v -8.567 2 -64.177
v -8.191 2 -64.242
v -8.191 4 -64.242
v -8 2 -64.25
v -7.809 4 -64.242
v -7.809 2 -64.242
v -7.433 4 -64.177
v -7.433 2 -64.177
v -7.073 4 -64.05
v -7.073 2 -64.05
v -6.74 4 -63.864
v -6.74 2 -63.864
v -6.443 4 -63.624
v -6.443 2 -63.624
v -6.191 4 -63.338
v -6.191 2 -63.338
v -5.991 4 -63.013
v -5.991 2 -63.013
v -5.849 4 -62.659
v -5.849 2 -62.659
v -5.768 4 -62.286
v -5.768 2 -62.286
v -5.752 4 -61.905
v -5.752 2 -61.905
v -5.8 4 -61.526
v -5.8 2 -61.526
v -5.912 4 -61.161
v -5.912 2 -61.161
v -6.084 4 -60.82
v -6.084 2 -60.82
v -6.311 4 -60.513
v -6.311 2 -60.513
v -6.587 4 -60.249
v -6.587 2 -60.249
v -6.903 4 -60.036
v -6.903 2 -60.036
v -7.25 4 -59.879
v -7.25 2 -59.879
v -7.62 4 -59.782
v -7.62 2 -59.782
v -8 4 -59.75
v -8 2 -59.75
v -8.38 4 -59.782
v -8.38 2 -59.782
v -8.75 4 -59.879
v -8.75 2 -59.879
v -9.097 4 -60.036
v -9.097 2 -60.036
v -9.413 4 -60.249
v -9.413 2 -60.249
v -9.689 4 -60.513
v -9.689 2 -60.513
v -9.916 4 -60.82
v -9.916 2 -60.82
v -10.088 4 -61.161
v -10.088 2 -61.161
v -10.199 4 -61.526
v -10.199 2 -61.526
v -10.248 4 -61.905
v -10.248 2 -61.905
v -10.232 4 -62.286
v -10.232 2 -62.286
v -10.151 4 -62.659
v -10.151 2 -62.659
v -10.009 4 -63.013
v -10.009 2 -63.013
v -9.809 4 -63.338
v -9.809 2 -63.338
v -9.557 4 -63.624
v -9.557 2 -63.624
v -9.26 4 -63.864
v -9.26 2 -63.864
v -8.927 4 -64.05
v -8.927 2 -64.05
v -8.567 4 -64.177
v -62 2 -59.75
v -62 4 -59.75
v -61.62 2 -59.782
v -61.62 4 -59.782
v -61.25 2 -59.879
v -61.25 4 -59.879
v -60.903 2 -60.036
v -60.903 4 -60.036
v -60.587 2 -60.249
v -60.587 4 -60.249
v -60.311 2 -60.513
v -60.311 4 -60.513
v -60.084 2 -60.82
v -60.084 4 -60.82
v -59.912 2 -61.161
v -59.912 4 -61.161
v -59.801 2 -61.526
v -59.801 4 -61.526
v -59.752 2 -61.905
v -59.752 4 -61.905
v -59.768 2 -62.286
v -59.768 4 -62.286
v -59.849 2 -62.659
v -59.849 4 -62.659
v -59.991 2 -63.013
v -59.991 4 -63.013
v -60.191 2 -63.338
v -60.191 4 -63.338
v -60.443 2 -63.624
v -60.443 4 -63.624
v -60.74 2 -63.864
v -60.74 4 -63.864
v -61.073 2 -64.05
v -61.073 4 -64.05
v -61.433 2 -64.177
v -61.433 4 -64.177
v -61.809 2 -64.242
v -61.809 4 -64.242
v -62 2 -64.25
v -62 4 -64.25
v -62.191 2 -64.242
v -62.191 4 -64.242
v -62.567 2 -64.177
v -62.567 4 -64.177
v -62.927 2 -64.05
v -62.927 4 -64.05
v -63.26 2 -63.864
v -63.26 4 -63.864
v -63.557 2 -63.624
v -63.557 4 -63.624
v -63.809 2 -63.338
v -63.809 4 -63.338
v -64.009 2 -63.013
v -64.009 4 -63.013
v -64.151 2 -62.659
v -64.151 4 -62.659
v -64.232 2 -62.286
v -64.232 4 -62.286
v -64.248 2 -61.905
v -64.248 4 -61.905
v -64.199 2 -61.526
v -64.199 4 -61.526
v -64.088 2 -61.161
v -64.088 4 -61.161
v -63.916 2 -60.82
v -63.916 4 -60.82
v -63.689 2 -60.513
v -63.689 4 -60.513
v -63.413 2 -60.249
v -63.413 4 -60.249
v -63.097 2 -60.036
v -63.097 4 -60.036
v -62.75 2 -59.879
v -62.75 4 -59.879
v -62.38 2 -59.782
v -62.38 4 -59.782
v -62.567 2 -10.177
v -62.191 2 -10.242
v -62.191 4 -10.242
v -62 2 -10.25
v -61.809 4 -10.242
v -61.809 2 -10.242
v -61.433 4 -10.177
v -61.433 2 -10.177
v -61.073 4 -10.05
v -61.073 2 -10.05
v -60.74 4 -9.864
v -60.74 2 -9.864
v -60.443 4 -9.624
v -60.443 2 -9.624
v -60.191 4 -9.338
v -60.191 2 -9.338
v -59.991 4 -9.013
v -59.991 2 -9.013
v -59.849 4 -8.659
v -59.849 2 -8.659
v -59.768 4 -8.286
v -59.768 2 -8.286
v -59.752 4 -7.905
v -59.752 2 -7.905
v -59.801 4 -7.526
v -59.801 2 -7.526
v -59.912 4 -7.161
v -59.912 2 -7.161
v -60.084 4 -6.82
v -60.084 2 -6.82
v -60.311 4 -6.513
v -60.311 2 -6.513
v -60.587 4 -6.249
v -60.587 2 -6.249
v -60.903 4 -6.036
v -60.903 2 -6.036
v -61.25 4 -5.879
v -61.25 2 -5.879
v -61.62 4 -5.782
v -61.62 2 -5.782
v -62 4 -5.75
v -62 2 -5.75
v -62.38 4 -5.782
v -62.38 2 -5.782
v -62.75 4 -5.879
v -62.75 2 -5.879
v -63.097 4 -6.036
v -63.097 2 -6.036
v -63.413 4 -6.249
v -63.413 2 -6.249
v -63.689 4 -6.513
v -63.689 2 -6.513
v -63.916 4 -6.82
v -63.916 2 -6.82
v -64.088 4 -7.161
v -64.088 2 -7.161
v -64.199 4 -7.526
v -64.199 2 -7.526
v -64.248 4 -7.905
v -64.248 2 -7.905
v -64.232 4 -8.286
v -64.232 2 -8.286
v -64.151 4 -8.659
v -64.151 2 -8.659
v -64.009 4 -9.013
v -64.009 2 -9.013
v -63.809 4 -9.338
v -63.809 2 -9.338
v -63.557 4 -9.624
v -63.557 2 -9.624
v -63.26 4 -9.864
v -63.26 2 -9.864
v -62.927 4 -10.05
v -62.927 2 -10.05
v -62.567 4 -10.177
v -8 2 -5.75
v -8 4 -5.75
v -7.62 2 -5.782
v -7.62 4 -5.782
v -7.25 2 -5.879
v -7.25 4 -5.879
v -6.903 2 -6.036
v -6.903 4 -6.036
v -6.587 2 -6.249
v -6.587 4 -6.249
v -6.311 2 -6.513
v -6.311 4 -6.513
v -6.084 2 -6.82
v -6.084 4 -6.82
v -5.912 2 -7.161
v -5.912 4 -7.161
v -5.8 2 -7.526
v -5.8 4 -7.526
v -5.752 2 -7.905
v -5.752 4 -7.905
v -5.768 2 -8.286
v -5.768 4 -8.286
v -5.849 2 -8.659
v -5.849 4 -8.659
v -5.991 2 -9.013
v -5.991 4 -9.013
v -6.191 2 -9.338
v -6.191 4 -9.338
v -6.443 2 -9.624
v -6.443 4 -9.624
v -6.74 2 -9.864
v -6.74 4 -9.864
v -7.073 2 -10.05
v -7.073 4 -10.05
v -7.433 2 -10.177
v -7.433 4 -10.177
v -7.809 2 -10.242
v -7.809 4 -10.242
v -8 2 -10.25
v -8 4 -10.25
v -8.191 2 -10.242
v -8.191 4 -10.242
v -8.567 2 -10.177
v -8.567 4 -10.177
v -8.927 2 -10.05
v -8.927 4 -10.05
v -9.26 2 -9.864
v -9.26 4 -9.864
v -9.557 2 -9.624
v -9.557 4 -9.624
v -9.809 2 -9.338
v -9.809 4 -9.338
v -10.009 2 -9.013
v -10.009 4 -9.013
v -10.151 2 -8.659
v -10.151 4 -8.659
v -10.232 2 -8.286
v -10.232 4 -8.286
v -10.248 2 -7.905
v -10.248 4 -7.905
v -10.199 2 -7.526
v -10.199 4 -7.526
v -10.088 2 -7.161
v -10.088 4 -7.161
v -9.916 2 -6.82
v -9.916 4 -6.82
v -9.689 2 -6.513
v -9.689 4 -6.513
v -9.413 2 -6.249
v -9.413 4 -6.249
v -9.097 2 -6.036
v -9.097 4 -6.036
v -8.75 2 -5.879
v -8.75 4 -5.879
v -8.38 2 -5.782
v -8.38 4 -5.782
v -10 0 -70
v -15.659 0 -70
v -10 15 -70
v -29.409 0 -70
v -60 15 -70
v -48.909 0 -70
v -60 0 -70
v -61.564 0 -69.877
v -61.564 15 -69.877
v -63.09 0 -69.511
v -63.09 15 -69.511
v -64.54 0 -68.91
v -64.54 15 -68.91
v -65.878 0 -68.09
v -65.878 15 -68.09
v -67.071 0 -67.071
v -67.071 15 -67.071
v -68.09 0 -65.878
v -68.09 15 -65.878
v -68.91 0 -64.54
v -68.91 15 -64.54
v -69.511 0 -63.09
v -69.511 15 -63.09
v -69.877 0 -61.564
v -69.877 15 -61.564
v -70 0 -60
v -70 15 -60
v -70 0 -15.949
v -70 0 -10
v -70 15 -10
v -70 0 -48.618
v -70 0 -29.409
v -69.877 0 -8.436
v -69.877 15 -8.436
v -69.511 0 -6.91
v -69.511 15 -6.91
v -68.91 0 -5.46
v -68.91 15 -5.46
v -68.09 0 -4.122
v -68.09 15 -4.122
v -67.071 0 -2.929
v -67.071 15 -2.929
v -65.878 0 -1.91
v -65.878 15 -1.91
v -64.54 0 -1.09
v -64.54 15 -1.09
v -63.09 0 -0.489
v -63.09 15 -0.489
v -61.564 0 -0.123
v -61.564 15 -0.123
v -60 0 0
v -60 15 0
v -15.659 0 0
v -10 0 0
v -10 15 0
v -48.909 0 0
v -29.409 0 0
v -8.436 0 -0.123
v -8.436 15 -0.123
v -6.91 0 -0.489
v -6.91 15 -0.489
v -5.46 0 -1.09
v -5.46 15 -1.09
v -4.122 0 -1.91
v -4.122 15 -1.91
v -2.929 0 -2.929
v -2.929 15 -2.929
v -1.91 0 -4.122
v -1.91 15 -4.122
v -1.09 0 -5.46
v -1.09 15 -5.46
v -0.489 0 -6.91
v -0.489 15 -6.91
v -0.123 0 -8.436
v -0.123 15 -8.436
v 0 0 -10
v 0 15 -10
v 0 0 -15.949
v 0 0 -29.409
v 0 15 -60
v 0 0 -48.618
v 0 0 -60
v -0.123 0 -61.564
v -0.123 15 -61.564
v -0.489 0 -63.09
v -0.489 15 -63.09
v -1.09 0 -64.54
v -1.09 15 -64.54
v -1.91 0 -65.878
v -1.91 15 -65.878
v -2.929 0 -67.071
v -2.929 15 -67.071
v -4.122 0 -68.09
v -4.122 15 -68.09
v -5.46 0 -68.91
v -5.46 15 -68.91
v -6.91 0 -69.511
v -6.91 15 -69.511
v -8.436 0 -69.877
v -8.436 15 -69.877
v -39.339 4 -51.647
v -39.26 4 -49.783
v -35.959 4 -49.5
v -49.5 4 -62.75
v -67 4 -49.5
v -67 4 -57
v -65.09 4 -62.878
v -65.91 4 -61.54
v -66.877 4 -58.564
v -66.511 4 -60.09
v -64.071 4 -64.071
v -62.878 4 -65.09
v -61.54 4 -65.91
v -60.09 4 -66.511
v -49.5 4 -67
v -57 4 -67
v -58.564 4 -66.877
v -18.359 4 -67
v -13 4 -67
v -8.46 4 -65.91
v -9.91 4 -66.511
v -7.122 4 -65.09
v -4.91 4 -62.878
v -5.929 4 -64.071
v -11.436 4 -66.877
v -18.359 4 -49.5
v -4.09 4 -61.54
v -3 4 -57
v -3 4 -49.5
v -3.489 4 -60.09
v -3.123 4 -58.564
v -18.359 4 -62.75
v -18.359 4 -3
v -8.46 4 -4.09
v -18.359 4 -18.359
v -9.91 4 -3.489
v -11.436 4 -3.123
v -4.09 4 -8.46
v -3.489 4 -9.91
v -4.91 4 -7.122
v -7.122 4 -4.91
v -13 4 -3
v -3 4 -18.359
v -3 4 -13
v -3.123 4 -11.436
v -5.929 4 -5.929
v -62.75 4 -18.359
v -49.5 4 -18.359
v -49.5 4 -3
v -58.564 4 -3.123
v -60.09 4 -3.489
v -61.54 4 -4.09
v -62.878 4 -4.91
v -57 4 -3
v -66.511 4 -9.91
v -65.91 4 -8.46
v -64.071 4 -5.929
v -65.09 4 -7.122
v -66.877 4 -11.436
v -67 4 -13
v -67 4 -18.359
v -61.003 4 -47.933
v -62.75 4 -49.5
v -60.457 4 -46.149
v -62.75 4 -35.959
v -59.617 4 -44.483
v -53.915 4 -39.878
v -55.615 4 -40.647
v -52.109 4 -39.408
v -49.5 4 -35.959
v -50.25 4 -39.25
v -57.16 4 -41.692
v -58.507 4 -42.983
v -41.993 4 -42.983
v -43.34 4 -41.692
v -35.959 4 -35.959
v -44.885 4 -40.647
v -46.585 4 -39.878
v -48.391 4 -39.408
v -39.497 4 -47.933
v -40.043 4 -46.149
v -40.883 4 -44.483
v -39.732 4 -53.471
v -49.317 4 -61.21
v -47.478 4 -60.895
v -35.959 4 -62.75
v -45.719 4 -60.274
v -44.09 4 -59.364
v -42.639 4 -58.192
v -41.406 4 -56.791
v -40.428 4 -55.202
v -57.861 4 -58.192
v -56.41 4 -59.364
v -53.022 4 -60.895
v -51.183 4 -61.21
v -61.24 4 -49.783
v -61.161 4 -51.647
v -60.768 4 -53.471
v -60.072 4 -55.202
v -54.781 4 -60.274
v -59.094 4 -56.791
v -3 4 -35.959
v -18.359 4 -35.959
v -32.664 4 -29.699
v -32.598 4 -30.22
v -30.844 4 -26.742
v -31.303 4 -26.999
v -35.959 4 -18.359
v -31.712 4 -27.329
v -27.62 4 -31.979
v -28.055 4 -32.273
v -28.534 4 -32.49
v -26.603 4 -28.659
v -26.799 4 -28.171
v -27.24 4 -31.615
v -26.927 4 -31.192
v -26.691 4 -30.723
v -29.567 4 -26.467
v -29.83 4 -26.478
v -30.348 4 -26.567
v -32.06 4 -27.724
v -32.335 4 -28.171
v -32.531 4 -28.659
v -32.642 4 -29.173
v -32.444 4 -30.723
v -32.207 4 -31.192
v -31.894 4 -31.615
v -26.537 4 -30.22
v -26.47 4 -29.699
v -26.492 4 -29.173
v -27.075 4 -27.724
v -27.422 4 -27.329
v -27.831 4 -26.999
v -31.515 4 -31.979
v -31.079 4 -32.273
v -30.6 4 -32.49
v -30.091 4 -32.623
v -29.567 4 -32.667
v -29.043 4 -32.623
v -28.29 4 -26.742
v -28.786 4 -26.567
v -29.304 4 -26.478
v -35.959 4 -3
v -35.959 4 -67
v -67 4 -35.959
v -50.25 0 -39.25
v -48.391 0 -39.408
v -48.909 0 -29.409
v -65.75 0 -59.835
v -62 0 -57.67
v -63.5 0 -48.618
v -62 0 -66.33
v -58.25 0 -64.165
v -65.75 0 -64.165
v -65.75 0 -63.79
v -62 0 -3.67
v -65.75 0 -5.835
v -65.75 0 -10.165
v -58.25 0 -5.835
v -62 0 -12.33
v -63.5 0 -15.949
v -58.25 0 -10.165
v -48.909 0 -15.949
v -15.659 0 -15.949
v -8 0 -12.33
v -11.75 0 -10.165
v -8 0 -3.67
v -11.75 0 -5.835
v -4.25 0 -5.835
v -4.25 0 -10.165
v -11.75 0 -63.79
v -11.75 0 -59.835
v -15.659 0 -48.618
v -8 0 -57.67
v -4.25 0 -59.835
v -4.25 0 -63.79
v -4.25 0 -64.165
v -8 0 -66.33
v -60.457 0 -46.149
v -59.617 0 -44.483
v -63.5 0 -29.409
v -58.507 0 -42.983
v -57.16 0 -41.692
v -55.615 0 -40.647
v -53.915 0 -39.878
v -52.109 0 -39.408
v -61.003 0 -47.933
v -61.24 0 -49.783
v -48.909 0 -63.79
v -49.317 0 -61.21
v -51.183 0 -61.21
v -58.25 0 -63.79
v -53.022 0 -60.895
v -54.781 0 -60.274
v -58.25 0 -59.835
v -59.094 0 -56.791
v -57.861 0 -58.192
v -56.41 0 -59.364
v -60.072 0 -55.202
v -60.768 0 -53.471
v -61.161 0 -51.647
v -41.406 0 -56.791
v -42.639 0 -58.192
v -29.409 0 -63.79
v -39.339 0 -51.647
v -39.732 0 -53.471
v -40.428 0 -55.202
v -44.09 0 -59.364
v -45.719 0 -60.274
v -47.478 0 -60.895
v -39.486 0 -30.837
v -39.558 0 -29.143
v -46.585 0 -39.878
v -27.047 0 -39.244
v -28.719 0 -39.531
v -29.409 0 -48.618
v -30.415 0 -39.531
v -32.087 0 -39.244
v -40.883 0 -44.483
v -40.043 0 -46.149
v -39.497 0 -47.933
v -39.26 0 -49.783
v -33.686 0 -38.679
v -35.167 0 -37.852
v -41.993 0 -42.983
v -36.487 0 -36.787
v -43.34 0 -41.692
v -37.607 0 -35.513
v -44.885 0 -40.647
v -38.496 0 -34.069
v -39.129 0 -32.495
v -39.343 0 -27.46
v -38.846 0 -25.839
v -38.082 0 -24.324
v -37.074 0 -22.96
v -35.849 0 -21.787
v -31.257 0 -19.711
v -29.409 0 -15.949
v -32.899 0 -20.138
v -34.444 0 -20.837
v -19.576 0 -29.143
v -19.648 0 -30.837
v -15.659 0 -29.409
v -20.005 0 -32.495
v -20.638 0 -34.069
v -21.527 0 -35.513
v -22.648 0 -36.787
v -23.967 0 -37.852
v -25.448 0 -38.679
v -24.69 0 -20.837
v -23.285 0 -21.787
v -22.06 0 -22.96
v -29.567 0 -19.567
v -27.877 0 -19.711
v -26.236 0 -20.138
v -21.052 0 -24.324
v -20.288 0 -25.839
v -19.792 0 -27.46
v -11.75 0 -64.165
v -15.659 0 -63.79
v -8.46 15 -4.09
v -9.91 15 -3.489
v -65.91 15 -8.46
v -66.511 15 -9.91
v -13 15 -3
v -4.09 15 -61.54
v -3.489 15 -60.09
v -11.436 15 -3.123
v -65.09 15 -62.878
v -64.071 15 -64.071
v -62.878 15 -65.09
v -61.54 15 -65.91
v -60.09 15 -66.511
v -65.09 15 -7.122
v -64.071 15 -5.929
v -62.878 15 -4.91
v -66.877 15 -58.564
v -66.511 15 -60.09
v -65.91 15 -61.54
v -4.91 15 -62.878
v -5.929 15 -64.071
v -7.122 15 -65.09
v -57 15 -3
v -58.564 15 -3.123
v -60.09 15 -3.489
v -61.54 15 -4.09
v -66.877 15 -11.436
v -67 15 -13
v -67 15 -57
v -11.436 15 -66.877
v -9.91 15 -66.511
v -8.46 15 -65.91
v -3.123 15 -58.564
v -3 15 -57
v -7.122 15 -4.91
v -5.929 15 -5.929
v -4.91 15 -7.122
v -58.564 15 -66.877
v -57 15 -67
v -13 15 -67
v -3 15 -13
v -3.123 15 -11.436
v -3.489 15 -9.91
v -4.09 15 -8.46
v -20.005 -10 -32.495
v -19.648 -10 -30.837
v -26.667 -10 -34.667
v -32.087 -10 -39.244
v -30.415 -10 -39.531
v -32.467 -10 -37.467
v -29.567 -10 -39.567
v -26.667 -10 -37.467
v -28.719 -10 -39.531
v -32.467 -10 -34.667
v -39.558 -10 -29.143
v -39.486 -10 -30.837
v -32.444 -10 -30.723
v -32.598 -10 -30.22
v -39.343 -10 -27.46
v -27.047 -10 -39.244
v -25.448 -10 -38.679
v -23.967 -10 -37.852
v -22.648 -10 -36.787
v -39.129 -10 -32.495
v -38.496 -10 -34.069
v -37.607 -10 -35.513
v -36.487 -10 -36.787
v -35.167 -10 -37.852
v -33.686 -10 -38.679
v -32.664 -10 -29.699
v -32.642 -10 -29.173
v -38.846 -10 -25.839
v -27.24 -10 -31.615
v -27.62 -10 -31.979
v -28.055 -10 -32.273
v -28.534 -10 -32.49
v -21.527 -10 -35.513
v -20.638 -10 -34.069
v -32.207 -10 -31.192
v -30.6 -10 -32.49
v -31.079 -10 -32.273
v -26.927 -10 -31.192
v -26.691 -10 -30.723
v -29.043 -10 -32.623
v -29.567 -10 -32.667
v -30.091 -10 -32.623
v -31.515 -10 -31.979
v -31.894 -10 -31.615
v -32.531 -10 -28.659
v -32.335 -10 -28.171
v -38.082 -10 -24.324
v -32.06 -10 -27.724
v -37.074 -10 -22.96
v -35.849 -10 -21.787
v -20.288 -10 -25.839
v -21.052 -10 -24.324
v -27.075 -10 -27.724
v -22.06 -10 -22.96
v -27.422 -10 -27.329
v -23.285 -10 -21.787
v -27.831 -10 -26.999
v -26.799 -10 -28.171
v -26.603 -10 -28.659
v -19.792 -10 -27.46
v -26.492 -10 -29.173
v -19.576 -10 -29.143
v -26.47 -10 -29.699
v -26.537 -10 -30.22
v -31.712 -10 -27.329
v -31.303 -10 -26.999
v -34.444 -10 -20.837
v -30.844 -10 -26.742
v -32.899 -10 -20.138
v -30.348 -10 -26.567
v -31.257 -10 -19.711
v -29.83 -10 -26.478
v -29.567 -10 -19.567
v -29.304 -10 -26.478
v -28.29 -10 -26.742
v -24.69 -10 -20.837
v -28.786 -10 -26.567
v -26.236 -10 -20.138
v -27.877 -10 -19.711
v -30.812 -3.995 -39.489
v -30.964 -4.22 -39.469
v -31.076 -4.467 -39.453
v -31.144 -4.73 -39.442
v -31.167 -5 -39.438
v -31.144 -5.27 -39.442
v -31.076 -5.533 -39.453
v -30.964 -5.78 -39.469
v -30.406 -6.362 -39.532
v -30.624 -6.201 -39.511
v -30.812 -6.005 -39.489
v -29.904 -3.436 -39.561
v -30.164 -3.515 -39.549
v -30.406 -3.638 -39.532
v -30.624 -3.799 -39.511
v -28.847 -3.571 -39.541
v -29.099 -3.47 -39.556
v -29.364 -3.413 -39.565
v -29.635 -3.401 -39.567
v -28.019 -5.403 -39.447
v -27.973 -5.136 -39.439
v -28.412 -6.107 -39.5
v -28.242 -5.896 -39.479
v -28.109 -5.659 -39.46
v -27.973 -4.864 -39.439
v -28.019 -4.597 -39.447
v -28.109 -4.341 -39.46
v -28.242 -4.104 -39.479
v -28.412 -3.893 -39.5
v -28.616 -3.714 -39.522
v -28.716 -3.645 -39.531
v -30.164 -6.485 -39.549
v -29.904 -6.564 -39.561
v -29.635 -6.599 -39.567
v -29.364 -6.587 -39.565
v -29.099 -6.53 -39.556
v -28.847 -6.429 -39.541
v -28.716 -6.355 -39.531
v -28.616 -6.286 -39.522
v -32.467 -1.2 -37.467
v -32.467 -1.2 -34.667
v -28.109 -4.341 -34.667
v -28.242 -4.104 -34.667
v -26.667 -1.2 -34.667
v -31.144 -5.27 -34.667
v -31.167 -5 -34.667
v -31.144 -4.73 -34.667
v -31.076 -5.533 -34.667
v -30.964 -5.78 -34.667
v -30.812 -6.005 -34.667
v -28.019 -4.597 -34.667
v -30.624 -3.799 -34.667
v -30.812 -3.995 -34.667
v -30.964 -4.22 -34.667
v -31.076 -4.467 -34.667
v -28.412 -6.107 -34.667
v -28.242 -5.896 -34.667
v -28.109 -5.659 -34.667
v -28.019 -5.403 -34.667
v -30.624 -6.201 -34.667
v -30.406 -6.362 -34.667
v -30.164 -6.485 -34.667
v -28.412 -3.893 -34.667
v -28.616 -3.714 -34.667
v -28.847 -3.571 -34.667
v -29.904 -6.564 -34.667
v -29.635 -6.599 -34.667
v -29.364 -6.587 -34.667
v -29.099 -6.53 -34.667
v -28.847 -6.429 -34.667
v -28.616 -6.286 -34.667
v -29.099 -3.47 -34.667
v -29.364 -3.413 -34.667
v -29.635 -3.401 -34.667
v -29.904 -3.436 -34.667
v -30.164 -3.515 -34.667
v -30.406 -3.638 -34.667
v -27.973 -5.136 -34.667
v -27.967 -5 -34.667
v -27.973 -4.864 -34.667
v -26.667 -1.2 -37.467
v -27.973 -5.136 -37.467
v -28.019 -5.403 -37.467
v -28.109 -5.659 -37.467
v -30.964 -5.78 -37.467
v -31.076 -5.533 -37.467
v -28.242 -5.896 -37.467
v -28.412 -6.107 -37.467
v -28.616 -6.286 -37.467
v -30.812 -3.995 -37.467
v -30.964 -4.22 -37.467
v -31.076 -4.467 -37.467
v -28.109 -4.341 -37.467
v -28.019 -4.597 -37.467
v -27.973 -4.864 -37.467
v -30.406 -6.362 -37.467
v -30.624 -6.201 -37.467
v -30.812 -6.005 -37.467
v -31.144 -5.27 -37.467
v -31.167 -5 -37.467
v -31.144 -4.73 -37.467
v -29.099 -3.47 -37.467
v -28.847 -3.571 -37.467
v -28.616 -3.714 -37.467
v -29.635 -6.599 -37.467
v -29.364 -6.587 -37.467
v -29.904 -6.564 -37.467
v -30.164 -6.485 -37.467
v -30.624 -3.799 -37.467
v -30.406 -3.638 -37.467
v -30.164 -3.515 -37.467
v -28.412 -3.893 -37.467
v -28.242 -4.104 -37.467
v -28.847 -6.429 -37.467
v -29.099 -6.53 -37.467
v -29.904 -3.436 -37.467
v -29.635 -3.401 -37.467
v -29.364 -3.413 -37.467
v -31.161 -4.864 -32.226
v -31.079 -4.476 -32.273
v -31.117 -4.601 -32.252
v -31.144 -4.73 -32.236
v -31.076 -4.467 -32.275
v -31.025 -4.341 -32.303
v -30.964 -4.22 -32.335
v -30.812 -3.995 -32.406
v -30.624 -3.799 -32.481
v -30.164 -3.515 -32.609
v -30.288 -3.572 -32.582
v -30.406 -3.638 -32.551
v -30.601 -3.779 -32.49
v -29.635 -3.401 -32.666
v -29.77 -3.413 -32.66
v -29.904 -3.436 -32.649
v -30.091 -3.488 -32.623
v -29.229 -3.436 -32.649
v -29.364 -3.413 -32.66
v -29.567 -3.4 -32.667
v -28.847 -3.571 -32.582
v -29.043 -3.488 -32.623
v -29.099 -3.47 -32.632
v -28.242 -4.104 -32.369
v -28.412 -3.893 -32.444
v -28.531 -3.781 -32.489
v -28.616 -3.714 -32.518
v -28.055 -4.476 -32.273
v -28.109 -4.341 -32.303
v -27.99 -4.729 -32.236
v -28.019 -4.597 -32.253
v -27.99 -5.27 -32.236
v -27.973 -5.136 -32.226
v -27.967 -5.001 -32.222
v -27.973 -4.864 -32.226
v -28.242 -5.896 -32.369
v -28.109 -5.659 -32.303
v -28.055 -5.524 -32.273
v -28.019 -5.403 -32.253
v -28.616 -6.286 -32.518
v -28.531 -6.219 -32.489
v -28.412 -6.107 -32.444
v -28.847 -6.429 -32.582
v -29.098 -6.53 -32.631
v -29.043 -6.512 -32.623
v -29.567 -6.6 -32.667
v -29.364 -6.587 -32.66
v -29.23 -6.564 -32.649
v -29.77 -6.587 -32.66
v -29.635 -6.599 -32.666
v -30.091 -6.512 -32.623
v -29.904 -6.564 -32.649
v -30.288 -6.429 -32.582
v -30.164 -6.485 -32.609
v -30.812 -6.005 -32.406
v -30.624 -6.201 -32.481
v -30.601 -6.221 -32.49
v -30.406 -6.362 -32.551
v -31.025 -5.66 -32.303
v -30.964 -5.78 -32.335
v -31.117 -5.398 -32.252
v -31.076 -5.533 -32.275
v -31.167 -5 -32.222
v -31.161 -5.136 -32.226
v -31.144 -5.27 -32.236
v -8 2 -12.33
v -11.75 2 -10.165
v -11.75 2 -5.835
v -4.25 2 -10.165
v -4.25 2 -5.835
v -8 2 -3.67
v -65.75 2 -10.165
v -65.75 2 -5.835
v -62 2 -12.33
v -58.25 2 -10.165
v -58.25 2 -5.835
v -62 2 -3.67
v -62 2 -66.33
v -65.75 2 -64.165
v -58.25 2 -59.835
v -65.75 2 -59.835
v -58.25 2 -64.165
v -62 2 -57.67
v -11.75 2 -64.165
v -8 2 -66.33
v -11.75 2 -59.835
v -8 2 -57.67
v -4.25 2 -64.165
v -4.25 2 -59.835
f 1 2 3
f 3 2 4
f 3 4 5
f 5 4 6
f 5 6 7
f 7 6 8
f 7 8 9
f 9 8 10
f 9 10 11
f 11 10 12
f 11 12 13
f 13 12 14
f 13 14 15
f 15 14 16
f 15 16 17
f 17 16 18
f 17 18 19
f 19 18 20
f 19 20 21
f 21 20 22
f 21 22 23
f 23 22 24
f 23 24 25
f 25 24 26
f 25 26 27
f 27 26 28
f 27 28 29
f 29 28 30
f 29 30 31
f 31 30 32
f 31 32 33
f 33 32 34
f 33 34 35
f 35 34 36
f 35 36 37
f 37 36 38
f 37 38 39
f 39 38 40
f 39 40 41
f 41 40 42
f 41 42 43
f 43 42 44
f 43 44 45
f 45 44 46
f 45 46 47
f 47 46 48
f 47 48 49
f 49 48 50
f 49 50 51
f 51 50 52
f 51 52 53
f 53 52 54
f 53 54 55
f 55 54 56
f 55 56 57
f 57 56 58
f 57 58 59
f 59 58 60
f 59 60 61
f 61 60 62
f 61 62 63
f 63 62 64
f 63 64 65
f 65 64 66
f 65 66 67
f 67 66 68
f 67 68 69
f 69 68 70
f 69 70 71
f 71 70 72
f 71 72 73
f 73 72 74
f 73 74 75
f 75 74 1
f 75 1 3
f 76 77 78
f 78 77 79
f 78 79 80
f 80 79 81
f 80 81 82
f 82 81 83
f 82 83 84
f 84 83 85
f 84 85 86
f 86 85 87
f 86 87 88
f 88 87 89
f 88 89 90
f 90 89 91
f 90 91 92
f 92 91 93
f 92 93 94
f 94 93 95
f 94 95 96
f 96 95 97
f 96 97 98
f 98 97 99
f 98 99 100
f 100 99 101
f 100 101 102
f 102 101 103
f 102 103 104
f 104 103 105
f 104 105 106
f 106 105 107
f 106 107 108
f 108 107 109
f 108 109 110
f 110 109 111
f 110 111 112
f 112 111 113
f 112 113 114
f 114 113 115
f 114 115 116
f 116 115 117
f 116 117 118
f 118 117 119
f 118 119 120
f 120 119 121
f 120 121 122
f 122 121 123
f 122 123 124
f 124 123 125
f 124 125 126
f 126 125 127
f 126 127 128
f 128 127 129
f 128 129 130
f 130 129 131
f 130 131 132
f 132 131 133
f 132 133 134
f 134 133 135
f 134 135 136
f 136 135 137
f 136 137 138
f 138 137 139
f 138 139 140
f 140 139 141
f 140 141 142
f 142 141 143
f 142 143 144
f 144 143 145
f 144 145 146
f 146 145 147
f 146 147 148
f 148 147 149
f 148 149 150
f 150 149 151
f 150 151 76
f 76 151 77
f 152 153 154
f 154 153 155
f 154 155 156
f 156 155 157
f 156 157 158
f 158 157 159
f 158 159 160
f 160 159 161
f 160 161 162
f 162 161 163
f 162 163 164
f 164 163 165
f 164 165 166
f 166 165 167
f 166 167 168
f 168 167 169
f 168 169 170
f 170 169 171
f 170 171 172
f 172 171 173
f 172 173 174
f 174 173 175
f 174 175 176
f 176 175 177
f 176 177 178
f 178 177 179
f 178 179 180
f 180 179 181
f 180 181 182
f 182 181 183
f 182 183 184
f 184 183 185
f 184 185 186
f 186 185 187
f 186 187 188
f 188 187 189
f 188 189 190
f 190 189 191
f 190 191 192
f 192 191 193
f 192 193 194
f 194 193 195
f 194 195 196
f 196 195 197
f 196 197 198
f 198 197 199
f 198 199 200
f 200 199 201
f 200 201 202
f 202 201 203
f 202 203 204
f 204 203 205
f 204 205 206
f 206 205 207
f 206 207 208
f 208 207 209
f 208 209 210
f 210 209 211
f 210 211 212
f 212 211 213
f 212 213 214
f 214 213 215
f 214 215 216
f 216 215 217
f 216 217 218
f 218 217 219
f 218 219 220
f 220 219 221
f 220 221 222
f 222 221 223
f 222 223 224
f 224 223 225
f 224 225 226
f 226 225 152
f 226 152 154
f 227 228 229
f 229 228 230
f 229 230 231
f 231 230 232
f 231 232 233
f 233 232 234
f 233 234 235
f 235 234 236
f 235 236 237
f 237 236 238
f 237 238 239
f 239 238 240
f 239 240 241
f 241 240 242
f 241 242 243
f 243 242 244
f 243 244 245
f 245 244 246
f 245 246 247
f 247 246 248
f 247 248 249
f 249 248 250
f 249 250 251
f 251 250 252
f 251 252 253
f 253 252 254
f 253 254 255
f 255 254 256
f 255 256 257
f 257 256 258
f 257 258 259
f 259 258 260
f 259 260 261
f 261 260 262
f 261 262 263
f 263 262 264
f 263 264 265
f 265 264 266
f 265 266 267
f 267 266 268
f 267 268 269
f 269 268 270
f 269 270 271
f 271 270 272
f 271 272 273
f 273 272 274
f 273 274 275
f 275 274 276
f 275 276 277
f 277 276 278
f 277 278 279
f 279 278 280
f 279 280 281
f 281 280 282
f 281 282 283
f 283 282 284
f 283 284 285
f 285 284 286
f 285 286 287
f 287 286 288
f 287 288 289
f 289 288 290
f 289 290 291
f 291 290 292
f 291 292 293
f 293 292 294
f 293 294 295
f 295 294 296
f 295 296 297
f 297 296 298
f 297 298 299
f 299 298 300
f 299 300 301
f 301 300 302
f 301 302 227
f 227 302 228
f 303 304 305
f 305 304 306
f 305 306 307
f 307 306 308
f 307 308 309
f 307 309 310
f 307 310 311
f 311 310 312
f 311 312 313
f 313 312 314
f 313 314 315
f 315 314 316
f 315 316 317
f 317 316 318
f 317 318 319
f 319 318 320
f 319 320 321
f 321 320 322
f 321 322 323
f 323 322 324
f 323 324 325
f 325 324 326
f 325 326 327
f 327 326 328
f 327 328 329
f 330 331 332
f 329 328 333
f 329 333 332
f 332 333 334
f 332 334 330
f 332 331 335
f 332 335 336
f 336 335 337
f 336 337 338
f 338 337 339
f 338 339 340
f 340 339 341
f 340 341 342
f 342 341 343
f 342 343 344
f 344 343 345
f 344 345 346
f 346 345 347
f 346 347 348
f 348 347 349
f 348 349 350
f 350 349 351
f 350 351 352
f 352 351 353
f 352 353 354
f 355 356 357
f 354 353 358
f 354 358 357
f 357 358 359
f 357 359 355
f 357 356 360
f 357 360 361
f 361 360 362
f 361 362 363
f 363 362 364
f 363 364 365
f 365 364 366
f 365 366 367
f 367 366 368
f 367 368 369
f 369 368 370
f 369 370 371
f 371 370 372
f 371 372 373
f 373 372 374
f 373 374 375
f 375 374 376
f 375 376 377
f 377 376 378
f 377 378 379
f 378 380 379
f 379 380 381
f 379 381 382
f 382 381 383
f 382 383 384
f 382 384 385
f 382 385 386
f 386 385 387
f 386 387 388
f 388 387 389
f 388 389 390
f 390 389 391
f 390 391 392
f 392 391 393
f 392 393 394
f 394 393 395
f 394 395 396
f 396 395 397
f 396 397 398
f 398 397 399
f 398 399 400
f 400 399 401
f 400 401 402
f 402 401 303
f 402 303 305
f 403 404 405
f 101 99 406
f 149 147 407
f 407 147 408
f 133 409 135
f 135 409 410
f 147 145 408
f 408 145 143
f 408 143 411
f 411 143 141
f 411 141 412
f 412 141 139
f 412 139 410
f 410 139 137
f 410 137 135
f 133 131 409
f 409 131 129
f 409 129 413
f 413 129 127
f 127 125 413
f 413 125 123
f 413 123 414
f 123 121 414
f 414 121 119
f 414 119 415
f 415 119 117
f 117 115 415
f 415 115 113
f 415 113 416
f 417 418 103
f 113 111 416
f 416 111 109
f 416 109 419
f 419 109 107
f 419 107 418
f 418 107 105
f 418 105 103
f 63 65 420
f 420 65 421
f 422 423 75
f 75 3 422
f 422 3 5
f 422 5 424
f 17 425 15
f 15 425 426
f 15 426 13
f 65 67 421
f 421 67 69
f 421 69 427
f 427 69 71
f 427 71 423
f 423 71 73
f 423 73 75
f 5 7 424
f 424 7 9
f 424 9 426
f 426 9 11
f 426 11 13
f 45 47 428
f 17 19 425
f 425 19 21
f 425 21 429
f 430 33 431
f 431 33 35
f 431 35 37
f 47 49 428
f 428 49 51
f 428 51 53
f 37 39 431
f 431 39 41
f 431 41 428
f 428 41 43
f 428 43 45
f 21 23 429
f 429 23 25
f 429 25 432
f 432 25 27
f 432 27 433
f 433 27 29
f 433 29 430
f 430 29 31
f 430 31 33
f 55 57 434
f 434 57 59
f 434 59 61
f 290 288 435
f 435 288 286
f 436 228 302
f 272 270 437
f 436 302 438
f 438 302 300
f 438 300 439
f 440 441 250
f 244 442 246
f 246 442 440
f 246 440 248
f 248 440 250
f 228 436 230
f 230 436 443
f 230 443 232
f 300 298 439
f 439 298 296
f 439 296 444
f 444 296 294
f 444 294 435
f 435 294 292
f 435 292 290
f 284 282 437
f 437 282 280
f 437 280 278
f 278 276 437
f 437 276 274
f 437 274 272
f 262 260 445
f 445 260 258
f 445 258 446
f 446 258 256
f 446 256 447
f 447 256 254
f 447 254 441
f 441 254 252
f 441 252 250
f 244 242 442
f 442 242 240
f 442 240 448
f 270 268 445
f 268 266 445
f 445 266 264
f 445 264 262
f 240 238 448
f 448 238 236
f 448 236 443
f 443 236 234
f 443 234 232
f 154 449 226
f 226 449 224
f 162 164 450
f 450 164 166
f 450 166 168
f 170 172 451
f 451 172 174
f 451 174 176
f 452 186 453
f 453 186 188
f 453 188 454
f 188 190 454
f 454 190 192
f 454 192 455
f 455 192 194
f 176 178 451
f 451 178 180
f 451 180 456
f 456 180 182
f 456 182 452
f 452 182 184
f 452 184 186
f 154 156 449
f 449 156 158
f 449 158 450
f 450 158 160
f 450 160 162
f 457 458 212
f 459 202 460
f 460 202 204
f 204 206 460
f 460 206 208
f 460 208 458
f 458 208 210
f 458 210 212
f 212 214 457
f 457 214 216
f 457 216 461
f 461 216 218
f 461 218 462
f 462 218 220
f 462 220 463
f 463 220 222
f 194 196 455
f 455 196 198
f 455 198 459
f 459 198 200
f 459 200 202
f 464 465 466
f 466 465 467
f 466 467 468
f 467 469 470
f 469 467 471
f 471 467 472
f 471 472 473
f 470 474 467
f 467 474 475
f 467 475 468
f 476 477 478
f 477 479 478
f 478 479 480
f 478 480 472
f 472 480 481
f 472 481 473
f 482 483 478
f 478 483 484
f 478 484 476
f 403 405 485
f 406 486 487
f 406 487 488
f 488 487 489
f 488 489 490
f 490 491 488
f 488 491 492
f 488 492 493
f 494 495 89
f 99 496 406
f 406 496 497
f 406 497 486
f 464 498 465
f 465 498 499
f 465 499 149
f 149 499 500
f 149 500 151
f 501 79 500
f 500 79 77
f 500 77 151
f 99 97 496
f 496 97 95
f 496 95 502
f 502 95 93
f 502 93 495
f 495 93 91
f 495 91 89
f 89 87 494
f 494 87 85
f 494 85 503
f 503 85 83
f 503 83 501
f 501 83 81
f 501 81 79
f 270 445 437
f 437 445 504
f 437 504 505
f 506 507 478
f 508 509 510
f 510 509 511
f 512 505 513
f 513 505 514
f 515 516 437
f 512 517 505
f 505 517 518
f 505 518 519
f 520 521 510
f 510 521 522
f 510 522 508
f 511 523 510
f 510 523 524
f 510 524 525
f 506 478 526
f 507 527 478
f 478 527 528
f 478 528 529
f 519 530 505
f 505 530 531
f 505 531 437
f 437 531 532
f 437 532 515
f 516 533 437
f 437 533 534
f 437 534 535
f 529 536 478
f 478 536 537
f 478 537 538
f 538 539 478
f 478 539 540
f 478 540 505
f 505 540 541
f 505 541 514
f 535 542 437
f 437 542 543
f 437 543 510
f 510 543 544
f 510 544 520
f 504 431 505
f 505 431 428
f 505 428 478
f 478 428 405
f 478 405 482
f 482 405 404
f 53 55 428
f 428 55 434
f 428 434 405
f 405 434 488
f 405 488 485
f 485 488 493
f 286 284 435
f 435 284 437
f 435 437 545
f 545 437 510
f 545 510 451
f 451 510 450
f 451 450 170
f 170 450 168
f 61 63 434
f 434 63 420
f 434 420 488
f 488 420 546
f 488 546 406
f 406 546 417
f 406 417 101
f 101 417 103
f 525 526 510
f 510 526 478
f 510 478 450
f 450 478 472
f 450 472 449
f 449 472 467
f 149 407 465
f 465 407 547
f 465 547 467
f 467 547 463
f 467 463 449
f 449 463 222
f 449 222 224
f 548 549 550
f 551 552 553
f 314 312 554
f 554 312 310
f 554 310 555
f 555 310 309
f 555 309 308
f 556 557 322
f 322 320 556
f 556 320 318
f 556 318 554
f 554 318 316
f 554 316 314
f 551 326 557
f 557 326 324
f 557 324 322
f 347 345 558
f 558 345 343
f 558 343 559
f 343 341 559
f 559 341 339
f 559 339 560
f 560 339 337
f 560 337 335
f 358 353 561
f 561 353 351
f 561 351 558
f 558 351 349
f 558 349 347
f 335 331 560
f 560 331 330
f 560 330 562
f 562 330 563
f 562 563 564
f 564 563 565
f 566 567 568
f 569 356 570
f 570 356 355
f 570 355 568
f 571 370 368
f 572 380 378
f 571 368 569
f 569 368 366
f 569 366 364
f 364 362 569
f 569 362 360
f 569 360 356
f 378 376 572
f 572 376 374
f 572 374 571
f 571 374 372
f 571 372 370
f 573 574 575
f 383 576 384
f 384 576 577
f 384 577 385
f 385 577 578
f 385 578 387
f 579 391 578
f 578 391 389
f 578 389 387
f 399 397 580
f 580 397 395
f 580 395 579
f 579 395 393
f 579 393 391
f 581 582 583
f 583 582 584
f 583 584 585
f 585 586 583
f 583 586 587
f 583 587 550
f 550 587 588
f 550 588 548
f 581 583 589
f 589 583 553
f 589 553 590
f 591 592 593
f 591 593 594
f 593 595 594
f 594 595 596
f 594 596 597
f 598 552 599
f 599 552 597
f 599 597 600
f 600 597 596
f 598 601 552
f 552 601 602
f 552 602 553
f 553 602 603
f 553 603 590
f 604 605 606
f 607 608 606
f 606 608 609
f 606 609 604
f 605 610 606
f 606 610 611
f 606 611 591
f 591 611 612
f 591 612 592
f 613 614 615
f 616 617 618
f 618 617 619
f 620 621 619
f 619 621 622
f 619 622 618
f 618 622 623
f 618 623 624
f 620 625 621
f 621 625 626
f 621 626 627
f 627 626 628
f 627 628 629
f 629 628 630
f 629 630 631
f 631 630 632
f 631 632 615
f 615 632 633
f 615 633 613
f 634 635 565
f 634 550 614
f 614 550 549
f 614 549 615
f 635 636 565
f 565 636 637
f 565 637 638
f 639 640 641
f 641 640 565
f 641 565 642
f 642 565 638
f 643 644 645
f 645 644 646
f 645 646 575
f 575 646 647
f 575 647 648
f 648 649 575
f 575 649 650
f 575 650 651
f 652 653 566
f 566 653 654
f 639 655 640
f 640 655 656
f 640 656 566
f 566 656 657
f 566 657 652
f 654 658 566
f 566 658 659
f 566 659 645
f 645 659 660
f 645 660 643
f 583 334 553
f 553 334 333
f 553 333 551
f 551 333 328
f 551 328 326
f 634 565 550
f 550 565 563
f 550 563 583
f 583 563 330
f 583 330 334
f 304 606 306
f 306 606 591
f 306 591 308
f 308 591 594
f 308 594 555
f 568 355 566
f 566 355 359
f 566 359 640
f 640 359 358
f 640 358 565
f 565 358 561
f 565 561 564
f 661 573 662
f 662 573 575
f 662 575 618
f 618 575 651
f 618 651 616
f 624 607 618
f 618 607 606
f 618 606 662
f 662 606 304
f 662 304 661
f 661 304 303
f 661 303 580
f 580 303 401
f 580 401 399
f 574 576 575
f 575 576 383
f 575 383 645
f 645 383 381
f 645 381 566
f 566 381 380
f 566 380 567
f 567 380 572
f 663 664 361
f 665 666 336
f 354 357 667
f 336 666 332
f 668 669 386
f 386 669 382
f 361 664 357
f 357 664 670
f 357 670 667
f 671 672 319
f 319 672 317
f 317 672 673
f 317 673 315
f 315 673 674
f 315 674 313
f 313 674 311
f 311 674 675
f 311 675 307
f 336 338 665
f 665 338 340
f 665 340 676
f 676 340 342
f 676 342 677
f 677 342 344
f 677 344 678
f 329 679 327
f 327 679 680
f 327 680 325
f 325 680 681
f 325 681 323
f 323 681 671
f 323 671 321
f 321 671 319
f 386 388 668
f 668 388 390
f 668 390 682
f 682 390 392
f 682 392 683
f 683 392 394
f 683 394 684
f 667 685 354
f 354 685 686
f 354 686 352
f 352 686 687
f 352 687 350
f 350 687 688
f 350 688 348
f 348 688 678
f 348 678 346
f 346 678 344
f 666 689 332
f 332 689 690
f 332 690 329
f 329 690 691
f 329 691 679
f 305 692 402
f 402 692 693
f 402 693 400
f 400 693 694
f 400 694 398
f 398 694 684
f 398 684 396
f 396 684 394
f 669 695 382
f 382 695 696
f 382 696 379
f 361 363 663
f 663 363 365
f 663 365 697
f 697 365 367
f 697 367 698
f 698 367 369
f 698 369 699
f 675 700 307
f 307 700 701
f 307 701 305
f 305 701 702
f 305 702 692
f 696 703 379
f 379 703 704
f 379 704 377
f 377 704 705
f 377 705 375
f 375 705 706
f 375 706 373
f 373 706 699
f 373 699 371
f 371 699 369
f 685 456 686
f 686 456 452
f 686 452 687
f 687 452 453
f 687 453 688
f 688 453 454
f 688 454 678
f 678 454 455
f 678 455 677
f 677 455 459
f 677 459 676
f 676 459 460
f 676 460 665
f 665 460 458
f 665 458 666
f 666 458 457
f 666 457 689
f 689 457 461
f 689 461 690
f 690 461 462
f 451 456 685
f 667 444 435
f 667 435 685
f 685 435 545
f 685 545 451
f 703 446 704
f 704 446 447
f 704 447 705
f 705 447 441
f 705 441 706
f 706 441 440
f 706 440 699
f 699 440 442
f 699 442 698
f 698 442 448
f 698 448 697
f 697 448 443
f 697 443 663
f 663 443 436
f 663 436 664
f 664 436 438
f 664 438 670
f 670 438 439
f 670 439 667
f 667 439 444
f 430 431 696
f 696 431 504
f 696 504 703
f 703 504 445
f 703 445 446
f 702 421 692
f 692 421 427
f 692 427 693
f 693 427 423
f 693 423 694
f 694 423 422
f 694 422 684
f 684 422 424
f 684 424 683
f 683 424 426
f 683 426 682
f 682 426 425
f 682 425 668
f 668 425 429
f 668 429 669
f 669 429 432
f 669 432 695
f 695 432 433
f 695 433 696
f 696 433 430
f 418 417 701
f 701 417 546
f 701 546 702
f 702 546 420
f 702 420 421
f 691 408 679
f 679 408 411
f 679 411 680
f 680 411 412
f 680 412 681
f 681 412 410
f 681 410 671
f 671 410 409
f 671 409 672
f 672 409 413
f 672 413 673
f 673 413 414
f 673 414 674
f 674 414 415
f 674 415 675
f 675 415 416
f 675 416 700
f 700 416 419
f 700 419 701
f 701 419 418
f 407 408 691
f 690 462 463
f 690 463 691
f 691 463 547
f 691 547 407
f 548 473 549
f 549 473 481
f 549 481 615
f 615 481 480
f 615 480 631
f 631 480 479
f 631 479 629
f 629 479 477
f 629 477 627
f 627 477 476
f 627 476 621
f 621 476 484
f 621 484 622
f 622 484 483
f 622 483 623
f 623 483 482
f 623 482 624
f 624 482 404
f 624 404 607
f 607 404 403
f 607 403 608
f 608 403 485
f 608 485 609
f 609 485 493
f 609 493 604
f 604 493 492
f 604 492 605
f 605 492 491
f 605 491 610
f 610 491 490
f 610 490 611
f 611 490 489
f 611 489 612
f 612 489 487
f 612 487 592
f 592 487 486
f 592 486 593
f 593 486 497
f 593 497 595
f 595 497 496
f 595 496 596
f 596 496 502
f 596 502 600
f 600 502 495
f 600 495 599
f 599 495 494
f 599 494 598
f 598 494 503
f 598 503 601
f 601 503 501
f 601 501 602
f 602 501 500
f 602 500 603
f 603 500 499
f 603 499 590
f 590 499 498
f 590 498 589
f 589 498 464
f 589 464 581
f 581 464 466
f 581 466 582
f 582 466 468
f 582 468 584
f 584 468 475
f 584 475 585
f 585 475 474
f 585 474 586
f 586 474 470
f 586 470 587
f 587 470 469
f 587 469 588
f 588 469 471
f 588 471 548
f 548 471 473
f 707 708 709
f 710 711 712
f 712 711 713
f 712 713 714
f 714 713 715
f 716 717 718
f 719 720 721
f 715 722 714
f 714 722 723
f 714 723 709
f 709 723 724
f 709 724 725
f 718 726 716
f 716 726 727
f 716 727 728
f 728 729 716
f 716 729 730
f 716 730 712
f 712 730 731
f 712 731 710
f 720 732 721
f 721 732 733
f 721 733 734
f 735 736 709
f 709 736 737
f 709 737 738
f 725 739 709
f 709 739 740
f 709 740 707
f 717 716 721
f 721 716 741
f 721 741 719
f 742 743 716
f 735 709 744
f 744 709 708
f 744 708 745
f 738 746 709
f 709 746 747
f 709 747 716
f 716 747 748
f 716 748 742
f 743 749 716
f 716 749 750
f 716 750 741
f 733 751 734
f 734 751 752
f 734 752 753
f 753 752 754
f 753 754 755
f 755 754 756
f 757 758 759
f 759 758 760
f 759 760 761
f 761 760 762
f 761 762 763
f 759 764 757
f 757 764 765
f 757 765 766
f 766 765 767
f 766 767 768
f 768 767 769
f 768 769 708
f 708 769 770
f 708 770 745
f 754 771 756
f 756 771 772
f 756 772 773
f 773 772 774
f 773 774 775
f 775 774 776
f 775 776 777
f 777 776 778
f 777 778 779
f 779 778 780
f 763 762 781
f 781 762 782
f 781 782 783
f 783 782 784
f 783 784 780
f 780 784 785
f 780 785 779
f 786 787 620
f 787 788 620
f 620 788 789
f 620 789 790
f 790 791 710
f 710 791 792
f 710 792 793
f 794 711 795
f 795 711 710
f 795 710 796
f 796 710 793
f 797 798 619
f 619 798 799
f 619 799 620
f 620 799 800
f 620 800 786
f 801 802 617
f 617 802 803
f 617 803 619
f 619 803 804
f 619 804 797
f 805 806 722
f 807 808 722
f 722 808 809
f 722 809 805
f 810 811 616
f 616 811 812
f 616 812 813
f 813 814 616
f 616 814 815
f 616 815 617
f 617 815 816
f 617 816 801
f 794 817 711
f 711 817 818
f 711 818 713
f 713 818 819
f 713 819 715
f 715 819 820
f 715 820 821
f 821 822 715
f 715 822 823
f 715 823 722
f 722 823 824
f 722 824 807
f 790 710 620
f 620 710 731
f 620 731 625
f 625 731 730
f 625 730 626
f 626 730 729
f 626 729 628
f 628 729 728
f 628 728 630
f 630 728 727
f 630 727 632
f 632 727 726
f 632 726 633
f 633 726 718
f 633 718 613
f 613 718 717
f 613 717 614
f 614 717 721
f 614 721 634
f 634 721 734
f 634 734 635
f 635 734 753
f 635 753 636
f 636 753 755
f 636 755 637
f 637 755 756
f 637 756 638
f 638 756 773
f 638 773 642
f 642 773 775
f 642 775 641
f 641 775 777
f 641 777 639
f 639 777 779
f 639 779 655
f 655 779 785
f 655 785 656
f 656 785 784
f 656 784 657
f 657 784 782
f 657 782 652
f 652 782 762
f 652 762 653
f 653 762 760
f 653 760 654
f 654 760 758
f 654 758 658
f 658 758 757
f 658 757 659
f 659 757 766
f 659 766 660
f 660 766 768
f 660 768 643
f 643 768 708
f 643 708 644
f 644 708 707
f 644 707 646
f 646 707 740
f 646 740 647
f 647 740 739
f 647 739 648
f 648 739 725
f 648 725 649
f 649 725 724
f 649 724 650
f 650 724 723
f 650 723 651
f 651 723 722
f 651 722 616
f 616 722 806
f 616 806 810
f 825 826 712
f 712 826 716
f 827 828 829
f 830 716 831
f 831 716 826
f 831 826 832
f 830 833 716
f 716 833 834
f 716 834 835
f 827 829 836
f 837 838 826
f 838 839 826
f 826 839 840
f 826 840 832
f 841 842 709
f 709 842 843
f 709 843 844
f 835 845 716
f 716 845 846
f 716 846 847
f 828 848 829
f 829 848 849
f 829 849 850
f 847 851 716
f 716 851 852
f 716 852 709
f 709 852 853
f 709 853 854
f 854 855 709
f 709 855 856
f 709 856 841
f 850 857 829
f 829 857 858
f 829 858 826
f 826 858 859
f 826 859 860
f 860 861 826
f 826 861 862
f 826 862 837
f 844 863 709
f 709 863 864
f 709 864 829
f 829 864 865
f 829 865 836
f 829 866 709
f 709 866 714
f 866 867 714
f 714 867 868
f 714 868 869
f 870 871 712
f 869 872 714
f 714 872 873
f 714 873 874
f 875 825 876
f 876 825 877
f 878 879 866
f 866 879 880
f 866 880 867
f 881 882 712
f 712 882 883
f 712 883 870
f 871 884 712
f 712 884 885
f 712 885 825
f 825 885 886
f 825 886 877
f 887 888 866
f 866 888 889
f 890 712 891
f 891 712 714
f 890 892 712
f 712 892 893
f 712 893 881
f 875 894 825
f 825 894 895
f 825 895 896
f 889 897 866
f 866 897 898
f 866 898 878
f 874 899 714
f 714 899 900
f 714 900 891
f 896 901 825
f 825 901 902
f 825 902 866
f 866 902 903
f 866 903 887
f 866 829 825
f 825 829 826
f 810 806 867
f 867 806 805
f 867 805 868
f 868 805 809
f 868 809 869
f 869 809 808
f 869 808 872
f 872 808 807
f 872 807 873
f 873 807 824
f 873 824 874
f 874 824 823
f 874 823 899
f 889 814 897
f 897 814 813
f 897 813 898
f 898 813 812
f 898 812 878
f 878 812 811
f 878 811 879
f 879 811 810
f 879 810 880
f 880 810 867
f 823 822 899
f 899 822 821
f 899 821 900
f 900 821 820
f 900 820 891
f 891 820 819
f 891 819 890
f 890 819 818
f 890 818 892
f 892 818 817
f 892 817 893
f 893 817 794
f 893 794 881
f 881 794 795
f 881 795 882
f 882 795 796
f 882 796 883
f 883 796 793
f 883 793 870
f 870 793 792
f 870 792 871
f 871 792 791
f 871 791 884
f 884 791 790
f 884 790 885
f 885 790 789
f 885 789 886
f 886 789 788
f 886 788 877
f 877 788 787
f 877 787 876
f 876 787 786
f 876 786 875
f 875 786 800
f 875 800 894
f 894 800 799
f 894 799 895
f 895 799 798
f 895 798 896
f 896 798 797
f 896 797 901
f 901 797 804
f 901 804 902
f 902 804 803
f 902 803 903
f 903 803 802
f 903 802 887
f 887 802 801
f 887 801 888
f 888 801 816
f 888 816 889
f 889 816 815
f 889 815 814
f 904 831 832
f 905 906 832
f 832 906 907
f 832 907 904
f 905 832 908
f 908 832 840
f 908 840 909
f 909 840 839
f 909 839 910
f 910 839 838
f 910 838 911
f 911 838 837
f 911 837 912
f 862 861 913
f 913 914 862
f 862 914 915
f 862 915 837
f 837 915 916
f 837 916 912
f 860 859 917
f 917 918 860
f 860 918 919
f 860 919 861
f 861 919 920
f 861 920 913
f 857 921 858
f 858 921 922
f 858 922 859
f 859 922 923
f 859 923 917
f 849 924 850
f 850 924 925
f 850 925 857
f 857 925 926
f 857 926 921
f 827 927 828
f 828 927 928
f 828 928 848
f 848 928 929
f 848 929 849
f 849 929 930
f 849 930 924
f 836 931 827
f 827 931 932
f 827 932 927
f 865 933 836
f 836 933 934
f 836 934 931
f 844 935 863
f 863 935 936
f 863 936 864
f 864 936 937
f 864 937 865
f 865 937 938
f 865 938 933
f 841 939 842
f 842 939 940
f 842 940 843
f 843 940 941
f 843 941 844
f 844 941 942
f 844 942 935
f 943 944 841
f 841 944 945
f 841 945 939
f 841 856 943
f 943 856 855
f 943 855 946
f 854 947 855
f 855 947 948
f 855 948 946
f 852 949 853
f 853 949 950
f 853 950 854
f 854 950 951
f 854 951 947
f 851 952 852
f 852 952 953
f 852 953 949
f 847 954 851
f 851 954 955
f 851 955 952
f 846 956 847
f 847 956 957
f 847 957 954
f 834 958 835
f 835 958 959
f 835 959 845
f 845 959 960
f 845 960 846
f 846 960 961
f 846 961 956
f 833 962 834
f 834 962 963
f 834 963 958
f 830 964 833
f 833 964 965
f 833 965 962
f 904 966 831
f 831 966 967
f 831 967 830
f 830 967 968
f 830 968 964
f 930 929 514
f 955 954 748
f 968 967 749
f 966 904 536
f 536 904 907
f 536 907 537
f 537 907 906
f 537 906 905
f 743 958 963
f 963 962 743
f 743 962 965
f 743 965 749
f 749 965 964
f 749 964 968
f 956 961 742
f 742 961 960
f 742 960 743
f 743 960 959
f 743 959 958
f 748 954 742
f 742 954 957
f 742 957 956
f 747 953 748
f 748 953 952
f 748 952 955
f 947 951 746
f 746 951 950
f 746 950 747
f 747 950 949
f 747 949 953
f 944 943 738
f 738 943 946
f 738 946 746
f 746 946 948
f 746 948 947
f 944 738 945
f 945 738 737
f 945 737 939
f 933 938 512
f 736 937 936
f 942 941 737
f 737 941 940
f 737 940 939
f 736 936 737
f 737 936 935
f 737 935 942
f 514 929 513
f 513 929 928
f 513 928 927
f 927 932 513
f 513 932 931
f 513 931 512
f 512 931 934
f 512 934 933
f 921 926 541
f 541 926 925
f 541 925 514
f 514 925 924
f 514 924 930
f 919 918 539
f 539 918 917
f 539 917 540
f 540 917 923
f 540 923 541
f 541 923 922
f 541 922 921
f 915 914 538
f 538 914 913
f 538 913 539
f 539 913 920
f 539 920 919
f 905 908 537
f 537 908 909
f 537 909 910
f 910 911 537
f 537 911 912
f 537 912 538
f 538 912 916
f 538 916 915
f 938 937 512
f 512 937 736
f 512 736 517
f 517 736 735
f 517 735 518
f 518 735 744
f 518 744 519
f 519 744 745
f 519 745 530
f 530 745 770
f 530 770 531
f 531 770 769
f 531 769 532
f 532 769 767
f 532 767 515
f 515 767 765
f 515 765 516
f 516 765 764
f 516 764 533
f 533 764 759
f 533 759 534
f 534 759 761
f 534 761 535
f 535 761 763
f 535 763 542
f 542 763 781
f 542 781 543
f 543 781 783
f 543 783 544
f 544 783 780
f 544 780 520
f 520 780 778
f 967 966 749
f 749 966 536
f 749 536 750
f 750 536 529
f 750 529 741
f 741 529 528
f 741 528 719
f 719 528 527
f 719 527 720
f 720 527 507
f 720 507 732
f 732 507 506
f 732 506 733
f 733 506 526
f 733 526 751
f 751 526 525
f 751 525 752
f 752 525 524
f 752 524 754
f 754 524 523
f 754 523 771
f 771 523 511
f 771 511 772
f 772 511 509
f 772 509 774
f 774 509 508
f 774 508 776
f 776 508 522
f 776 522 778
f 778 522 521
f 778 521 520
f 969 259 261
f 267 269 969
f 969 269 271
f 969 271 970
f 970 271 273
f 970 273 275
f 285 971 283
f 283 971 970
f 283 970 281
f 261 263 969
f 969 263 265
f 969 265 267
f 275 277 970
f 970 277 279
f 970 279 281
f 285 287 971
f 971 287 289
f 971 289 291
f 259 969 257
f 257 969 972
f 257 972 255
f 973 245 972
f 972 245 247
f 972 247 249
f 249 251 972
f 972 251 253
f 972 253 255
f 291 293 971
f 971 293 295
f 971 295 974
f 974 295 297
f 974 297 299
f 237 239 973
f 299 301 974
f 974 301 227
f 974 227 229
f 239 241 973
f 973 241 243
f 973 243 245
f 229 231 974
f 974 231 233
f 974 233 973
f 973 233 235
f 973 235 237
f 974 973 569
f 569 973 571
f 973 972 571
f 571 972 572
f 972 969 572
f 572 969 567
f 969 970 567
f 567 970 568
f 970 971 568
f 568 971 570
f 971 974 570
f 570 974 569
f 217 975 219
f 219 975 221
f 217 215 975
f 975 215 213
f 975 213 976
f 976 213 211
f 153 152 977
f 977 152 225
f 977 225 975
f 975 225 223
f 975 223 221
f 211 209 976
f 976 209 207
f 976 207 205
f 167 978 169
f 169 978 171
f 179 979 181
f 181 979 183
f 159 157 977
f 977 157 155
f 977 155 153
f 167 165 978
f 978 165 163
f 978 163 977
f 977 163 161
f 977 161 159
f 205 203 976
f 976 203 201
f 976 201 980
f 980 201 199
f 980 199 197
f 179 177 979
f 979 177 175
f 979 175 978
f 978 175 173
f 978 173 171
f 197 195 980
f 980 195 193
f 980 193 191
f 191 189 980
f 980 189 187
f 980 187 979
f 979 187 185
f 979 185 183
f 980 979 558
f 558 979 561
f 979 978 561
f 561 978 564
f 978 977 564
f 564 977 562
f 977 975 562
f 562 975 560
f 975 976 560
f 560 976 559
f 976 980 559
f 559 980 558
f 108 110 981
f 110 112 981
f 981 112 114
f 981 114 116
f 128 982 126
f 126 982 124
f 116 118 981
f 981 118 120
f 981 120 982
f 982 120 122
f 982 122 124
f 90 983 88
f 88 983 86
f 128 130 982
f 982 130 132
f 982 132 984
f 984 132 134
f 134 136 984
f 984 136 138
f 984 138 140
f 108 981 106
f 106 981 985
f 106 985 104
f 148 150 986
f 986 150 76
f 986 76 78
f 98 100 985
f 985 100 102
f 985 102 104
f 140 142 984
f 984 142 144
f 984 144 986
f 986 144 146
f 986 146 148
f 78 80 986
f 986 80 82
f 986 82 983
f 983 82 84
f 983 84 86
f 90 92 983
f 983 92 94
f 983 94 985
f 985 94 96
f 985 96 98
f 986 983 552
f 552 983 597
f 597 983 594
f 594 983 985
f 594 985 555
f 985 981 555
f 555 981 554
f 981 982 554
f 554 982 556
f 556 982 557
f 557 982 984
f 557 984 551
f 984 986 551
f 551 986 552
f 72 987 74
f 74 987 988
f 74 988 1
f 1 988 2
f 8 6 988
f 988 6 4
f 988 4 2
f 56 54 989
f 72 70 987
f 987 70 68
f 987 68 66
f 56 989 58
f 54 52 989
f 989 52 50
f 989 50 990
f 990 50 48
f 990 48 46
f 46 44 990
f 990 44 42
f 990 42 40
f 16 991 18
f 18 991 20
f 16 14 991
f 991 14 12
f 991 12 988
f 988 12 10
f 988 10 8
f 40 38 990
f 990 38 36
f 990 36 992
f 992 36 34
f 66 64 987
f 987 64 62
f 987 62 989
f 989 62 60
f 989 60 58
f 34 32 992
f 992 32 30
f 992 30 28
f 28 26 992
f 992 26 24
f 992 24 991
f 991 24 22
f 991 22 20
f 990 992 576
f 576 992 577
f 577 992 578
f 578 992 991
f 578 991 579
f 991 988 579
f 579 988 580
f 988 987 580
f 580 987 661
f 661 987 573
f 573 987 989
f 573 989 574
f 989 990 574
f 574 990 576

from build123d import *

# Parameters (mm, degrees)
SKETCH1_R           = 2.5
BOSS_EXTRUDE2_DEPTH = 4
BOSS_EXTRUDE3_DEPTH = 11
SKETCH4_R           = 11
CUT_EXTRUDE1_DEPTH  = 6
SKETCH5_R           = 10
BOSS_EXTRUDE5_DEPTH = 10
SKETCH6_W           = 5.8
SKETCH6_H           = 2.8
CUT_EXTRUDE2_DEPTH  = 8.8
SKETCH8_R           = 1.6
CUT_EXTRUDE3_DEPTH  = 10
SKETCH10_R          = 3.1
CUT_EXTRUDE5_DEPTH  = 103.102889283
SKETCH11_R          = 2.25
CUT_EXTRUDE6_DEPTH  = 10
CUT_EXTRUDE7_DEPTH  = 2


with BuildPart() as part:
    # Sketch1 → Boss-Extrude2 (new body)
    with BuildSketch(Plane(origin=(0, 0, 0), x_dir=(1, 0, 0), z_dir=(0, 1, 0))):
        with BuildLine():
            Line((-10, 0), (-60, 0))
            ThreePointArc((-60, 0), (-67.071067812, 2.928932188), (-70, 10))
            Line((-70, 10), (-70, 60))
            ThreePointArc((-70, 60), (-67.071067812, 67.071067812), (-60, 70))
            Line((-60, 70), (-10, 70))
            ThreePointArc((-10, 70), (-2.928932188, 67.071067812), (0, 60))
            Line((0, 60), (0, 10))
            ThreePointArc((0, 10), (-2.928932188, 2.928932188), (-10, 0))
        make_face()
        with Locations(Location((-50.25, 50.25, 0), (0, 0, 270))):
            Circle(SKETCH1_R, mode=Mode.SUBTRACT)
        with Locations(Location((-29.56712665, 29.56712665, 0), (0, 0, 270))):
            Circle(SKETCH1_R, mode=Mode.SUBTRACT)
    extrude(amount=BOSS_EXTRUDE2_DEPTH)

    # Sketch2 → Boss-Extrude3 (add)
    with BuildSketch(Plane(origin=(0, 4, 0), x_dir=(1, 0, 0), z_dir=(0, 1, 0))):
        with BuildLine():
            Line((-10, 0), (-60, 0))
            ThreePointArc((-60, 0), (-67.071067812, 2.928932188), (-70, 10))
            Line((-70, 10), (-70, 60))
            ThreePointArc((-70, 60), (-67.071067812, 67.071067812), (-60, 70))
            Line((-60, 70), (-10, 70))
            ThreePointArc((-10, 70), (-2.928932188, 67.071067812), (0, 60))
            Line((0, 60), (0, 10))
            ThreePointArc((0, 10), (-2.928932188, 2.928932188), (-10, 0))
        make_face()
        with BuildLine():
            Line((-3, 13), (-3, 57))
            ThreePointArc((-3, 57), (-5.928932188, 64.071067812), (-13, 67))
            Line((-13, 67), (-57, 67))
            ThreePointArc((-57, 67), (-64.071067812, 64.071067812), (-67, 57))
            Line((-67, 57), (-67, 13))
            ThreePointArc((-67, 13), (-64.071067812, 5.928932188), (-57, 3))
            Line((-57, 3), (-13, 3))
            ThreePointArc((-13, 3), (-5.928932188, 5.928932188), (-3, 13))
        make_face(mode=Mode.SUBTRACT)
    extrude(amount=BOSS_EXTRUDE3_DEPTH)

    # Sketch4 → Cut-Extrude1 (cut)
    with BuildSketch(Plane(origin=(0, 4, 0), x_dir=(1, 0, 0), z_dir=(0, 1, 0))):
        with Locations(Location((-50.25, 50.25, 0), (0, 0, 270))):
            Circle(SKETCH4_R)
    extrude(amount=-CUT_EXTRUDE1_DEPTH, mode=Mode.SUBTRACT)

    # Sketch5 → Boss-Extrude5 (add)
    with BuildSketch(Plane.XZ):
        with Locations(Location((-29.56712665, -29.56712665, 0), (0, 0, 90))):
            Circle(SKETCH5_R)
    extrude(amount=BOSS_EXTRUDE5_DEPTH)

    # Sketch6 → Cut-Extrude2 (cut)
    with BuildSketch(Plane.XZ.offset(10)):
        with Locations((-29.56712665, -36.06712665)):
            Rectangle(SKETCH6_W, SKETCH6_H)
    extrude(amount=-CUT_EXTRUDE2_DEPTH, mode=Mode.SUBTRACT)

    # Sketch8 → Cut-Extrude3 (cut)
    with BuildSketch(Plane(origin=(-29.56712665, -10, -39.56712665), x_dir=(-1, 0, 0), z_dir=(0, 0, -1))):
        with Locations((0, 5)):
            Circle(SKETCH8_R)
    extrude(amount=-CUT_EXTRUDE3_DEPTH, mode=Mode.SUBTRACT)

    # Sketch10 → Cut-Extrude5 (cut, through all)
    with BuildSketch(Plane.XZ.offset(10)):
        with Locations(Location((-29.56712665, -29.56712665, 0), (0, 0, 270))):
            Circle(SKETCH10_R)
    extrude(amount=-CUT_EXTRUDE5_DEPTH, mode=Mode.SUBTRACT)

    # Sketch11 → Cut-Extrude6 (cut)
    with BuildSketch(Plane(origin=(0, 4, 0), x_dir=(1, 0, 0), z_dir=(0, 1, 0))):
        with Locations(Location((-8, 62, 0), (0, 0, 270))):
            Circle(SKETCH11_R)
        with Locations(Location((-62, 62, 0), (0, 0, 270))):
            Circle(SKETCH11_R)
        with Locations(Location((-62, 8, 0), (0, 0, 270))):
            Circle(SKETCH11_R)
        with Locations(Location((-8, 8, 0), (0, 0, 270))):
            Circle(SKETCH11_R)
    extrude(amount=-CUT_EXTRUDE6_DEPTH, mode=Mode.SUBTRACT)

    # Sketch12 → Cut-Extrude7 (cut)
    with BuildSketch(Plane.XZ):
        Polygon((-62, -3.669872981), (-65.75, -5.834936491), (-65.75, -10.165063509), (-62, -12.330127019), (-58.25, -10.165063509), (-58.25, -5.834936491), align=None)
        Polygon((-8, -3.669872981), (-11.75, -5.834936491), (-11.75, -10.165063509), (-8, -12.330127019), (-4.25, -10.165063509), (-4.25, -5.834936491), align=None)
        Polygon((-62, -57.669872981), (-65.75, -59.834936491), (-65.75, -64.165063509), (-62, -66.330127019), (-58.25, -64.165063509), (-58.25, -59.834936491), align=None)
        Polygon((-8, -57.669872981), (-11.75, -59.834936491), (-11.75, -64.165063509), (-8, -66.330127019), (-4.25, -64.165063509), (-4.25, -59.834936491), align=None)
    extrude(amount=-CUT_EXTRUDE7_DEPTH, mode=Mode.SUBTRACT)


solid = part.part
